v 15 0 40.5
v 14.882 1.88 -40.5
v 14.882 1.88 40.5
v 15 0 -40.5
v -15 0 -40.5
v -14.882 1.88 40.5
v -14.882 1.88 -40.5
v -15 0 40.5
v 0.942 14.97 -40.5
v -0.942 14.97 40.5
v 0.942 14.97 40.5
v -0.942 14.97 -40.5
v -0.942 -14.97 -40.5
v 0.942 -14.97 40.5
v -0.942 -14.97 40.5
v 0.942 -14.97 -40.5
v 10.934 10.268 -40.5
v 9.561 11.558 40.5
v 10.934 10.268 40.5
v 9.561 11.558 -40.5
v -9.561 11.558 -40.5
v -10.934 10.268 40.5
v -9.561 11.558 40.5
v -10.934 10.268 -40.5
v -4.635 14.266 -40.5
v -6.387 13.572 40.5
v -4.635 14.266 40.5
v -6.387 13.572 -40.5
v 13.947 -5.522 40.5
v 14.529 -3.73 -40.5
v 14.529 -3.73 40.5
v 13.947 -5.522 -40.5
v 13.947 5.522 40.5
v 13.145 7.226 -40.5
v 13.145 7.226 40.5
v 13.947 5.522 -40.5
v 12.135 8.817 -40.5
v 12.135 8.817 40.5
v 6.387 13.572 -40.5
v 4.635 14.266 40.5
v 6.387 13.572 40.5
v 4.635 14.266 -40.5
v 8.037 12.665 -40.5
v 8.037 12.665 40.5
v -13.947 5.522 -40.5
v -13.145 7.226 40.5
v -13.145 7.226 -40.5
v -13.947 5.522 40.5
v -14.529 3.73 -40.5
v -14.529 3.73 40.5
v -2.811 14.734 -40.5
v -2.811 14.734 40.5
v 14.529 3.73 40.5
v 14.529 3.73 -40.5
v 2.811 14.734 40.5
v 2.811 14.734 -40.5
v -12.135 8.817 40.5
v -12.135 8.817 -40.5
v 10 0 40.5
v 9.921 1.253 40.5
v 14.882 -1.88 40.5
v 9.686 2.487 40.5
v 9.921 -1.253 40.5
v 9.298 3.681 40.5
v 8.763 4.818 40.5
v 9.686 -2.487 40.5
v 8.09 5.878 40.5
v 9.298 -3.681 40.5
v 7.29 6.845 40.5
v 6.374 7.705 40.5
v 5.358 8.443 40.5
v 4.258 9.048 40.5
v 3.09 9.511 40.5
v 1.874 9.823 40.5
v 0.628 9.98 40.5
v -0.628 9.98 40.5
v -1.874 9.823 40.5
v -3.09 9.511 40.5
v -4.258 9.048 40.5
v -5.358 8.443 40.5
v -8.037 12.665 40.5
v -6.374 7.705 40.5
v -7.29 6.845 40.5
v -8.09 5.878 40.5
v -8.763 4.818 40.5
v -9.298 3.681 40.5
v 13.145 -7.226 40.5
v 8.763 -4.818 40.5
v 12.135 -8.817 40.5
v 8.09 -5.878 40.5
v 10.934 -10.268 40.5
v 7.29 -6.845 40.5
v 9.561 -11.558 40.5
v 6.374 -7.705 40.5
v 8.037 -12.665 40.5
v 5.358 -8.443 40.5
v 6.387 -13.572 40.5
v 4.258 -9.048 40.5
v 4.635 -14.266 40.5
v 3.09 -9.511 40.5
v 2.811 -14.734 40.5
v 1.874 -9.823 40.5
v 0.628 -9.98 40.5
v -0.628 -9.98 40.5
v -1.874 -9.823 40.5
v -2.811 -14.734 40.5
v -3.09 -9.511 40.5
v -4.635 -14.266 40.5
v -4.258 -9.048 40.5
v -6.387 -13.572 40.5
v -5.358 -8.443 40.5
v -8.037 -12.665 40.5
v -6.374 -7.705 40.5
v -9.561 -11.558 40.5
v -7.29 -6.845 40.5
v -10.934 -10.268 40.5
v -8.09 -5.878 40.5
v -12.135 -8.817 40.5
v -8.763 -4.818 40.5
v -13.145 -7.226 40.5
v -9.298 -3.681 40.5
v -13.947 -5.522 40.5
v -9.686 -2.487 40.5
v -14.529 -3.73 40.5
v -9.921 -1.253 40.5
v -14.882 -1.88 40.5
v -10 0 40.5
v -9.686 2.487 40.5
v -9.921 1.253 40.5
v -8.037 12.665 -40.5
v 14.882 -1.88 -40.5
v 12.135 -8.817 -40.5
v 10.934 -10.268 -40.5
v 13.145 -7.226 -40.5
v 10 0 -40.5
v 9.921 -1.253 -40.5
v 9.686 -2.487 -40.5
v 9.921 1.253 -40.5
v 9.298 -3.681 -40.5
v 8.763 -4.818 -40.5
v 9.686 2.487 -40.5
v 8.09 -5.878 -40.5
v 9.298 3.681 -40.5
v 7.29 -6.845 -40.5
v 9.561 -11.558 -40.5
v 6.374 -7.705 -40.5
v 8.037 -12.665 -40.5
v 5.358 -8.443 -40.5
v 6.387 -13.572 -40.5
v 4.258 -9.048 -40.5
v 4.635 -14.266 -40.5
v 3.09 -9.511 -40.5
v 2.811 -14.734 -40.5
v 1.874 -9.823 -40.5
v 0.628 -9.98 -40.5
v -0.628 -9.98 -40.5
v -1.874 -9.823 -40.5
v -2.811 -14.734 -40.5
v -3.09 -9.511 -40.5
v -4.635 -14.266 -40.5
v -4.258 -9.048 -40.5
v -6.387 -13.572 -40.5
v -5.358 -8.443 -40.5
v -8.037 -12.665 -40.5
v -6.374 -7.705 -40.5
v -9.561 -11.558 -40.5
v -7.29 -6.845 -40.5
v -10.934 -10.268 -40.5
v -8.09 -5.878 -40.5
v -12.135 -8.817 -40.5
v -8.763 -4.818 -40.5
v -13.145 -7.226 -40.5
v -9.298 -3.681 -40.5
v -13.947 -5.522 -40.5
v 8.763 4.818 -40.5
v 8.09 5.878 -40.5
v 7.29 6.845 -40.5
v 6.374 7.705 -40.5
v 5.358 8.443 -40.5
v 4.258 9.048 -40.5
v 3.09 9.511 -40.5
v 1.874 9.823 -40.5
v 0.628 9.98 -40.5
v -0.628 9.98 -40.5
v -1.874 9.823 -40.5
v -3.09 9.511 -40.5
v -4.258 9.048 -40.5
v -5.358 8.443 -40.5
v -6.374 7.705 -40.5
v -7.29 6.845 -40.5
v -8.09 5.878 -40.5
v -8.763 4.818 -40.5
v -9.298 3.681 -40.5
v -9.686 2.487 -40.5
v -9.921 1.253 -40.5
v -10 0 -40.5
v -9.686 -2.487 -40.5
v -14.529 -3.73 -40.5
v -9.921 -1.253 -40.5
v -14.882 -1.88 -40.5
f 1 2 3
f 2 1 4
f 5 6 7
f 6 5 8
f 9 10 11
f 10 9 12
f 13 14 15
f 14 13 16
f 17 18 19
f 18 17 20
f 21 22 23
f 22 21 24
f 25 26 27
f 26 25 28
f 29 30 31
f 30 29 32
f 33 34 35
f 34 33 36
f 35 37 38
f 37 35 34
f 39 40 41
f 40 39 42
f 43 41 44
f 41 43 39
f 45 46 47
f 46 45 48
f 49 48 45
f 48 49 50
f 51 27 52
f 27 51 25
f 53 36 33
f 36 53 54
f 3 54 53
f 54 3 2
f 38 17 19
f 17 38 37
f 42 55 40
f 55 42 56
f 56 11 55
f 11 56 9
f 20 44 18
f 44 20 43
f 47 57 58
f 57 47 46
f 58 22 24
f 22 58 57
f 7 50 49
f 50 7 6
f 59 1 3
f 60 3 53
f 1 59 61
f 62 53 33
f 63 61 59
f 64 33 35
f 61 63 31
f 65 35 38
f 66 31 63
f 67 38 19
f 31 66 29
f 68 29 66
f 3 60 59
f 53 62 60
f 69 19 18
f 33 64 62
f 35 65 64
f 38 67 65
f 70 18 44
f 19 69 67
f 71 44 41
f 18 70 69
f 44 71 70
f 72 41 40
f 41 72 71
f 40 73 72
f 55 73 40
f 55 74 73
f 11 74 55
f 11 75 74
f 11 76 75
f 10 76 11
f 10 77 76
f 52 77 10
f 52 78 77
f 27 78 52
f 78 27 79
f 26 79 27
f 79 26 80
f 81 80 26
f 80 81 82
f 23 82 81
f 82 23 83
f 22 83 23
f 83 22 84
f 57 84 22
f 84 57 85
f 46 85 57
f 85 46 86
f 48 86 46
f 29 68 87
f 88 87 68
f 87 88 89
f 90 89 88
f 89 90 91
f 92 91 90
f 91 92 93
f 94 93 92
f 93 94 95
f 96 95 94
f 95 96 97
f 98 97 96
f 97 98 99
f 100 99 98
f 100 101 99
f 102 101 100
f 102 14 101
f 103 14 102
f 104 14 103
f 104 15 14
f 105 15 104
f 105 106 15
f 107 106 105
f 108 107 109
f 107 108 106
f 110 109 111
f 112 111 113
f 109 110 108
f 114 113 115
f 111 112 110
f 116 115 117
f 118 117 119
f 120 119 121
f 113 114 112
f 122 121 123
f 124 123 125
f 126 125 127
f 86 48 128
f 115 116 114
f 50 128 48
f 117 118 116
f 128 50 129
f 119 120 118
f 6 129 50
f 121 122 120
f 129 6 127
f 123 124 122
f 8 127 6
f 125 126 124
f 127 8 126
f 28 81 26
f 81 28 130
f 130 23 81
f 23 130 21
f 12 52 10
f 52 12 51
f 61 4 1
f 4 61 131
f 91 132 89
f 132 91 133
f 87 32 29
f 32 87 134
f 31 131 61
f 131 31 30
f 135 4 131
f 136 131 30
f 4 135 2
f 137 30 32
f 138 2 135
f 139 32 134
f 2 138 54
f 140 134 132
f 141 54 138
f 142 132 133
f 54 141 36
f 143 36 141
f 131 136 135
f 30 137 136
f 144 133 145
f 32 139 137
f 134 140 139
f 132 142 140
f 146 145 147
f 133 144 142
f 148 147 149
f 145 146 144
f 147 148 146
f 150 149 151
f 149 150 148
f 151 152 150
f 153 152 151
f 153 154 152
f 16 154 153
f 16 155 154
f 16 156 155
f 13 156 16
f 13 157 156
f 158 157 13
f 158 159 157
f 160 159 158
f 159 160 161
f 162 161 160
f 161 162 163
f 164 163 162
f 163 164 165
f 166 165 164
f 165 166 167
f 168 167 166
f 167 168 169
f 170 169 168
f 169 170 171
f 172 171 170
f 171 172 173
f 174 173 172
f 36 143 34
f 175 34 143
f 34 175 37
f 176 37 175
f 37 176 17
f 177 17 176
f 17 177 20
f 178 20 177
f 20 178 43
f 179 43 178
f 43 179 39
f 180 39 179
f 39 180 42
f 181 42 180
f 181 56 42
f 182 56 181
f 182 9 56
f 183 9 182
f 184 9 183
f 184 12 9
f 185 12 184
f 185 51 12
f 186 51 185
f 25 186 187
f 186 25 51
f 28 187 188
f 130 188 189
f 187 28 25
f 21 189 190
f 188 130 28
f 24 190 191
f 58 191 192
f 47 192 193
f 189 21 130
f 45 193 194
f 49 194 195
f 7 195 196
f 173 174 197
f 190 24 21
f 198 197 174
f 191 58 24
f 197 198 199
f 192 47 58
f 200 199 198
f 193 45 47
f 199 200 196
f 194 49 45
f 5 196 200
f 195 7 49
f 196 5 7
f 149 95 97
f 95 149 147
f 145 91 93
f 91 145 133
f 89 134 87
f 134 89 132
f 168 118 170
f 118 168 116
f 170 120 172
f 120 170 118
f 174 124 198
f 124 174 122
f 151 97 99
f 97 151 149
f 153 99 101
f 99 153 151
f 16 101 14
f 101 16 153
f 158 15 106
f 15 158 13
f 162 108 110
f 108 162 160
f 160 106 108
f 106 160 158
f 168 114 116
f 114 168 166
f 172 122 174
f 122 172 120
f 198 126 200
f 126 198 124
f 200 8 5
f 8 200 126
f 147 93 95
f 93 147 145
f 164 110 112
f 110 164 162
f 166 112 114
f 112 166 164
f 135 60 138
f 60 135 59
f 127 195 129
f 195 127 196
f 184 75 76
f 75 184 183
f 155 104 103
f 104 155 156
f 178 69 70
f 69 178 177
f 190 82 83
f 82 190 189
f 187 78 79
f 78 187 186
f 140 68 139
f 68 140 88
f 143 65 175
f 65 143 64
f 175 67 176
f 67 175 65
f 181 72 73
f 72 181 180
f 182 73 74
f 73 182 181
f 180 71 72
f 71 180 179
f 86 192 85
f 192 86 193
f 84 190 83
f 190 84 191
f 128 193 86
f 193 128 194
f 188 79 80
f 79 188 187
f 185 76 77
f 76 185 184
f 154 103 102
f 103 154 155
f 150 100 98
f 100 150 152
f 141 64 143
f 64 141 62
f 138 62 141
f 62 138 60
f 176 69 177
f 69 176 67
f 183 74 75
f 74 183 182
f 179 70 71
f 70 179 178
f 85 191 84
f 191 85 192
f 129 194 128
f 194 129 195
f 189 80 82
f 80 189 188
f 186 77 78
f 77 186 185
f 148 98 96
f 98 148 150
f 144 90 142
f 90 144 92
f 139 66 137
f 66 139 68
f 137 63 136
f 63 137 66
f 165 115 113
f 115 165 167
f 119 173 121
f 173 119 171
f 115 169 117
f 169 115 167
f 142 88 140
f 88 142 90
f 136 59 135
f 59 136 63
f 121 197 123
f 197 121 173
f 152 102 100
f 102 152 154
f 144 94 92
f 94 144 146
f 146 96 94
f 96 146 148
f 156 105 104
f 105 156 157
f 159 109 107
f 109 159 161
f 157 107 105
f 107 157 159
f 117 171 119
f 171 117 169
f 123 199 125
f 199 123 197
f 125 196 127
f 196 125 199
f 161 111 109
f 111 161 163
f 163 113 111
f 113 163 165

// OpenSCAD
$fn = 50;


difference() {
	union() {
		translate(v = [0, 0, -40.5000000000]) {
			cylinder(h = 81, r = 15.0000000000);
		}
	}
	union() {
		translate(v = [0, 0, -100.0000000000]) {
			cylinder(h = 200, r = 10);
		}
	}
}
